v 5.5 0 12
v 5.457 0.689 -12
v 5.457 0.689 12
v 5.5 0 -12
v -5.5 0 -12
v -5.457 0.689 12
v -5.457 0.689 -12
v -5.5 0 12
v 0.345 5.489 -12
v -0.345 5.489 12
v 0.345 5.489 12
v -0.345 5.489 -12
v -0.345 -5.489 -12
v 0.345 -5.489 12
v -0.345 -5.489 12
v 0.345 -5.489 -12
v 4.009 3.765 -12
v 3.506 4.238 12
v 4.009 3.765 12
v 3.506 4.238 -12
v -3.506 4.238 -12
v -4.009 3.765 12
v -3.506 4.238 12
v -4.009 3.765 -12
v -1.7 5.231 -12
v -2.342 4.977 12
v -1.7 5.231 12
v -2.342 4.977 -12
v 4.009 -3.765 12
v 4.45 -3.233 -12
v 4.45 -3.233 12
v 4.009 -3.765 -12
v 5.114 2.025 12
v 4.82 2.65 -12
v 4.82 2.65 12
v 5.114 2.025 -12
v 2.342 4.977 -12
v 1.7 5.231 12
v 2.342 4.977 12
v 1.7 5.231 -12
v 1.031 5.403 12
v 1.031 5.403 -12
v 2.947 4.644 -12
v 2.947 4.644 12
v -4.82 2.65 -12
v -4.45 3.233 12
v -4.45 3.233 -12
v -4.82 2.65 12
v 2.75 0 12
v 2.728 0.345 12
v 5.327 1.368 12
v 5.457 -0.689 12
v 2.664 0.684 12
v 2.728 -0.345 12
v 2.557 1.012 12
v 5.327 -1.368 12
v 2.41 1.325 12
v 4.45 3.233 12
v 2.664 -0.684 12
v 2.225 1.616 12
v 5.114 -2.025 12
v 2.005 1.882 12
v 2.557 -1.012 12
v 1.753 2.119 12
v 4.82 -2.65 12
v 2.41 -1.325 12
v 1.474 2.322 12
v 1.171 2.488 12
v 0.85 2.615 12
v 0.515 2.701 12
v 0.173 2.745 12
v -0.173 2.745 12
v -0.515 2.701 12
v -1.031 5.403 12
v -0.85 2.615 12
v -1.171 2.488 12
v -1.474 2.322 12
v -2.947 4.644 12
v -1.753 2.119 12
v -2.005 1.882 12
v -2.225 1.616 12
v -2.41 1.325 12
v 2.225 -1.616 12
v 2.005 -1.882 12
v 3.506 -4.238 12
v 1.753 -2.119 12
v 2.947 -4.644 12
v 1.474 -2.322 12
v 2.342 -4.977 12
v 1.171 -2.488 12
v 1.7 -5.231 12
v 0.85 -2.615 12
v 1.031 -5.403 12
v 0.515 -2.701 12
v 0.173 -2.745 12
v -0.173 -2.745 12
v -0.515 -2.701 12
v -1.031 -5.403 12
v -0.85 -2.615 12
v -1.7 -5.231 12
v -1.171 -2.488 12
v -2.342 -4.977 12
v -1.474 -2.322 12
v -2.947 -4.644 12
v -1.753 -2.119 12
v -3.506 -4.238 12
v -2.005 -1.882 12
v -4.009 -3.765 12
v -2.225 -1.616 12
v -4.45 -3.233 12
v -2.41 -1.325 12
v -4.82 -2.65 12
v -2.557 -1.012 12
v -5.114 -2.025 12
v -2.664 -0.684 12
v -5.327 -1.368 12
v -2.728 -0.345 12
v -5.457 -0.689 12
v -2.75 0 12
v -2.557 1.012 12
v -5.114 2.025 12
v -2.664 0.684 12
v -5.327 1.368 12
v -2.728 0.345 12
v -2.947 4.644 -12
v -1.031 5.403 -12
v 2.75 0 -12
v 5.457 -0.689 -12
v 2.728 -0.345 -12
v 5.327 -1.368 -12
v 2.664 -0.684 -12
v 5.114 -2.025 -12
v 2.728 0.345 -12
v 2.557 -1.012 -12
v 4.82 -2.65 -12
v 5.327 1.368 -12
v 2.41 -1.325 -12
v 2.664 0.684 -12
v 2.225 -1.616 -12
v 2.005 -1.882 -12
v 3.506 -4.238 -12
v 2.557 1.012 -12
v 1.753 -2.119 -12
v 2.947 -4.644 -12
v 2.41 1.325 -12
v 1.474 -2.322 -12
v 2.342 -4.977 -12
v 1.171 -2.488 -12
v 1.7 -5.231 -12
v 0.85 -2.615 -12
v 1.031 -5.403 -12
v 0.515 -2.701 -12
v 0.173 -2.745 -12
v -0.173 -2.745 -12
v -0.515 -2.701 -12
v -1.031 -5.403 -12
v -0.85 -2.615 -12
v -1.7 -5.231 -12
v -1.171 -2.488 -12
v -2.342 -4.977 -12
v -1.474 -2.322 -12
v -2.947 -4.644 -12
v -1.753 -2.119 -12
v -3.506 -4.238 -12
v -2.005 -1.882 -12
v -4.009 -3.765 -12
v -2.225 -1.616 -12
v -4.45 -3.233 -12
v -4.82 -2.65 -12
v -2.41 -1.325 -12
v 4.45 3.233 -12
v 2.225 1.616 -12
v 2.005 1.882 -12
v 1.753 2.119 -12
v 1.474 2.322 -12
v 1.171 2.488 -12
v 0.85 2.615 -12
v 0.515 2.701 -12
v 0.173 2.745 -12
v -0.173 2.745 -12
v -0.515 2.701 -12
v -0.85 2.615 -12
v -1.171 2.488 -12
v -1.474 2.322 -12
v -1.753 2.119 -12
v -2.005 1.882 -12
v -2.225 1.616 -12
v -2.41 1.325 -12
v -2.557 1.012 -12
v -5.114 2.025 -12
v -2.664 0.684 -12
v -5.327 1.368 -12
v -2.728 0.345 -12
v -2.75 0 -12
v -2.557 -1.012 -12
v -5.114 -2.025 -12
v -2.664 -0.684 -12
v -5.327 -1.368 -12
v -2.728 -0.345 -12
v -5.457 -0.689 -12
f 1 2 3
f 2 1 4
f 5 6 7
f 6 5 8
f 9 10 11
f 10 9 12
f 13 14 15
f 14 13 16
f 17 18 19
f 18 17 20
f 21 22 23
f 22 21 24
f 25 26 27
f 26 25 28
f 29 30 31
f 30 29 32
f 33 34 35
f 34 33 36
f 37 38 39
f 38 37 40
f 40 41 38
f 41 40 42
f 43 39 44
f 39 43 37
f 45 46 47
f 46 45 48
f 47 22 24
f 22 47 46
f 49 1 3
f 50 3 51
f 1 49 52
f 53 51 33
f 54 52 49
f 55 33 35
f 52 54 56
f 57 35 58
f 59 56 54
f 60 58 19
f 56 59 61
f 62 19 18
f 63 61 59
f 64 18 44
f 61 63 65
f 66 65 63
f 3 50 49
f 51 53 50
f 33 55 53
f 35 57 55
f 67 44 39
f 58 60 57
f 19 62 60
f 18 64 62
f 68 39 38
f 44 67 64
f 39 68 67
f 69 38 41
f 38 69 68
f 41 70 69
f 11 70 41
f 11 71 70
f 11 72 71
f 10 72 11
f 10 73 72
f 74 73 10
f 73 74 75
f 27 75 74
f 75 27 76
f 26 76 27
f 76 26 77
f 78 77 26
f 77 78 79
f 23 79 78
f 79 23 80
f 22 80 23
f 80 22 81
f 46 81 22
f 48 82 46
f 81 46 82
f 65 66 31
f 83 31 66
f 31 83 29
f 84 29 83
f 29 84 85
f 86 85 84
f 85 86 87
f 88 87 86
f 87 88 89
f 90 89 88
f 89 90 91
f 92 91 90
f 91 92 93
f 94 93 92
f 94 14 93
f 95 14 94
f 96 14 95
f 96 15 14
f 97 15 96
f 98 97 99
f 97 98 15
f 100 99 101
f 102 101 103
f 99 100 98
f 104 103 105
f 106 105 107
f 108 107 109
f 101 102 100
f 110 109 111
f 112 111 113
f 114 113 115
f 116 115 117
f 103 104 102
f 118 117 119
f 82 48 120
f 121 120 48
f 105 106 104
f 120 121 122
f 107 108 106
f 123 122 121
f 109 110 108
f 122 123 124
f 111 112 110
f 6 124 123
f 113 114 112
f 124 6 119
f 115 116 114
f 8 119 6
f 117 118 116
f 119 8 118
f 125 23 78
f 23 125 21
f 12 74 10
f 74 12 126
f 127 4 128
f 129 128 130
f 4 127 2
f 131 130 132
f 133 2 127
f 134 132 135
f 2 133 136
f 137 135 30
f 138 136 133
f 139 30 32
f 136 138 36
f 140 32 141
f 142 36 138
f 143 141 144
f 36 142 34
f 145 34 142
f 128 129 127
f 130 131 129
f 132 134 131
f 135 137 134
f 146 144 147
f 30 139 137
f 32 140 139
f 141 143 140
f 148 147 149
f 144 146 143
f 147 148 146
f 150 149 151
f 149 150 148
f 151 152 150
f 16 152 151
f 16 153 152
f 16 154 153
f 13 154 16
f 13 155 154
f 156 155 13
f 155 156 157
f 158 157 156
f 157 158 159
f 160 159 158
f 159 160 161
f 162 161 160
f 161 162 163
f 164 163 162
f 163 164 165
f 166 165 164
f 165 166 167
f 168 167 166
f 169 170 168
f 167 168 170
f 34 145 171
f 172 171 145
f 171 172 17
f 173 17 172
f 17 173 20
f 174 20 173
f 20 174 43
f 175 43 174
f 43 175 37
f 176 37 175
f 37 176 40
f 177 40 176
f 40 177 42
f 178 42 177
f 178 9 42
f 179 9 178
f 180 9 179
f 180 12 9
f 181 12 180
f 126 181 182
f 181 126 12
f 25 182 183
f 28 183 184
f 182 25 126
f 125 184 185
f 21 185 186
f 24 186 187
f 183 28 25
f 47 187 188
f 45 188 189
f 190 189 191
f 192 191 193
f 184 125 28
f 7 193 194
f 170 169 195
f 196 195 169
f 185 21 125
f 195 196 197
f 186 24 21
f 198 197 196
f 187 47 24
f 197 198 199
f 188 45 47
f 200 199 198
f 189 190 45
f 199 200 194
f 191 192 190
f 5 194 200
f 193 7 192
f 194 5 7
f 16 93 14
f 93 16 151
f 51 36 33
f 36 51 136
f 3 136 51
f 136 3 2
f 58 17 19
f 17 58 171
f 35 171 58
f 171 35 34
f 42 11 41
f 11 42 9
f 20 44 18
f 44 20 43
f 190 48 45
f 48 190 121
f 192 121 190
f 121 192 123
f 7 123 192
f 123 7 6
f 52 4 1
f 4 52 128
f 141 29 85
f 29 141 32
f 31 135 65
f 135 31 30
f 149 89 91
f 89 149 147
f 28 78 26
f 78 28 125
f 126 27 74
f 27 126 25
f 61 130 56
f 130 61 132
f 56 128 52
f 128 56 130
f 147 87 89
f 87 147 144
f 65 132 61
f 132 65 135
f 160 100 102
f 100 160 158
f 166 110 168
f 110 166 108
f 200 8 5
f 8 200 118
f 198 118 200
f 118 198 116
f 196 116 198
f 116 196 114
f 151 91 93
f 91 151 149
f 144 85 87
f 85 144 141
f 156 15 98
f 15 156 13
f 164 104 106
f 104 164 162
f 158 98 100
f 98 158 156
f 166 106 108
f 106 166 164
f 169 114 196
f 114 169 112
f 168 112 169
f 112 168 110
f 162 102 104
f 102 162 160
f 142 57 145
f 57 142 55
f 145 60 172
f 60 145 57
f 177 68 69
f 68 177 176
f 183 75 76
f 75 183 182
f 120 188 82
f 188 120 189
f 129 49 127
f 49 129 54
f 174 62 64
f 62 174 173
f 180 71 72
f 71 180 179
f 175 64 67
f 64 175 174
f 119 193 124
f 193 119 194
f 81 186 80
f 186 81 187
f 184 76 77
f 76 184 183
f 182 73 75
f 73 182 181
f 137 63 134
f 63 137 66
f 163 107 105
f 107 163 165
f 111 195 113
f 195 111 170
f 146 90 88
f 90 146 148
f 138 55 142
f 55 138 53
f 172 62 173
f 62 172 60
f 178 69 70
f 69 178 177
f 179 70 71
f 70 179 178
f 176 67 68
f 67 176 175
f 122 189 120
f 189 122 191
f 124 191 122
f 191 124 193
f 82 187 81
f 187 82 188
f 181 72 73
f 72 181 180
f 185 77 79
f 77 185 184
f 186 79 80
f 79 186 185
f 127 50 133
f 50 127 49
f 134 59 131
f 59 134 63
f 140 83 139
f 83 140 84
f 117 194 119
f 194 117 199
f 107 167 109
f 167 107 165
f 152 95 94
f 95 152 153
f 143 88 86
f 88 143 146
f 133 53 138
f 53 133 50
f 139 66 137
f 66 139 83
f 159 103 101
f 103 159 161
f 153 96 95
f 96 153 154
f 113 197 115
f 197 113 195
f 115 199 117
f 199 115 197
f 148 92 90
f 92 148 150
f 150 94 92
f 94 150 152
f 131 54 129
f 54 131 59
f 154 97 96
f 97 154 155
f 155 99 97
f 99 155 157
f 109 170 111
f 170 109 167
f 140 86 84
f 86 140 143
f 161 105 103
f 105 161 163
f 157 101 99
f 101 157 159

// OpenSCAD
$fn = 50;


difference() {
	union() {
		translate(v = [0, 0, -12.0000000000]) {
			cylinder(h = 24, r = 5.5000000000);
		}
	}
	union() {
		translate(v = [0, 0, -100.0000000000]) {
			cylinder(h = 200, r = 2.7500000000);
		}
	}
}
